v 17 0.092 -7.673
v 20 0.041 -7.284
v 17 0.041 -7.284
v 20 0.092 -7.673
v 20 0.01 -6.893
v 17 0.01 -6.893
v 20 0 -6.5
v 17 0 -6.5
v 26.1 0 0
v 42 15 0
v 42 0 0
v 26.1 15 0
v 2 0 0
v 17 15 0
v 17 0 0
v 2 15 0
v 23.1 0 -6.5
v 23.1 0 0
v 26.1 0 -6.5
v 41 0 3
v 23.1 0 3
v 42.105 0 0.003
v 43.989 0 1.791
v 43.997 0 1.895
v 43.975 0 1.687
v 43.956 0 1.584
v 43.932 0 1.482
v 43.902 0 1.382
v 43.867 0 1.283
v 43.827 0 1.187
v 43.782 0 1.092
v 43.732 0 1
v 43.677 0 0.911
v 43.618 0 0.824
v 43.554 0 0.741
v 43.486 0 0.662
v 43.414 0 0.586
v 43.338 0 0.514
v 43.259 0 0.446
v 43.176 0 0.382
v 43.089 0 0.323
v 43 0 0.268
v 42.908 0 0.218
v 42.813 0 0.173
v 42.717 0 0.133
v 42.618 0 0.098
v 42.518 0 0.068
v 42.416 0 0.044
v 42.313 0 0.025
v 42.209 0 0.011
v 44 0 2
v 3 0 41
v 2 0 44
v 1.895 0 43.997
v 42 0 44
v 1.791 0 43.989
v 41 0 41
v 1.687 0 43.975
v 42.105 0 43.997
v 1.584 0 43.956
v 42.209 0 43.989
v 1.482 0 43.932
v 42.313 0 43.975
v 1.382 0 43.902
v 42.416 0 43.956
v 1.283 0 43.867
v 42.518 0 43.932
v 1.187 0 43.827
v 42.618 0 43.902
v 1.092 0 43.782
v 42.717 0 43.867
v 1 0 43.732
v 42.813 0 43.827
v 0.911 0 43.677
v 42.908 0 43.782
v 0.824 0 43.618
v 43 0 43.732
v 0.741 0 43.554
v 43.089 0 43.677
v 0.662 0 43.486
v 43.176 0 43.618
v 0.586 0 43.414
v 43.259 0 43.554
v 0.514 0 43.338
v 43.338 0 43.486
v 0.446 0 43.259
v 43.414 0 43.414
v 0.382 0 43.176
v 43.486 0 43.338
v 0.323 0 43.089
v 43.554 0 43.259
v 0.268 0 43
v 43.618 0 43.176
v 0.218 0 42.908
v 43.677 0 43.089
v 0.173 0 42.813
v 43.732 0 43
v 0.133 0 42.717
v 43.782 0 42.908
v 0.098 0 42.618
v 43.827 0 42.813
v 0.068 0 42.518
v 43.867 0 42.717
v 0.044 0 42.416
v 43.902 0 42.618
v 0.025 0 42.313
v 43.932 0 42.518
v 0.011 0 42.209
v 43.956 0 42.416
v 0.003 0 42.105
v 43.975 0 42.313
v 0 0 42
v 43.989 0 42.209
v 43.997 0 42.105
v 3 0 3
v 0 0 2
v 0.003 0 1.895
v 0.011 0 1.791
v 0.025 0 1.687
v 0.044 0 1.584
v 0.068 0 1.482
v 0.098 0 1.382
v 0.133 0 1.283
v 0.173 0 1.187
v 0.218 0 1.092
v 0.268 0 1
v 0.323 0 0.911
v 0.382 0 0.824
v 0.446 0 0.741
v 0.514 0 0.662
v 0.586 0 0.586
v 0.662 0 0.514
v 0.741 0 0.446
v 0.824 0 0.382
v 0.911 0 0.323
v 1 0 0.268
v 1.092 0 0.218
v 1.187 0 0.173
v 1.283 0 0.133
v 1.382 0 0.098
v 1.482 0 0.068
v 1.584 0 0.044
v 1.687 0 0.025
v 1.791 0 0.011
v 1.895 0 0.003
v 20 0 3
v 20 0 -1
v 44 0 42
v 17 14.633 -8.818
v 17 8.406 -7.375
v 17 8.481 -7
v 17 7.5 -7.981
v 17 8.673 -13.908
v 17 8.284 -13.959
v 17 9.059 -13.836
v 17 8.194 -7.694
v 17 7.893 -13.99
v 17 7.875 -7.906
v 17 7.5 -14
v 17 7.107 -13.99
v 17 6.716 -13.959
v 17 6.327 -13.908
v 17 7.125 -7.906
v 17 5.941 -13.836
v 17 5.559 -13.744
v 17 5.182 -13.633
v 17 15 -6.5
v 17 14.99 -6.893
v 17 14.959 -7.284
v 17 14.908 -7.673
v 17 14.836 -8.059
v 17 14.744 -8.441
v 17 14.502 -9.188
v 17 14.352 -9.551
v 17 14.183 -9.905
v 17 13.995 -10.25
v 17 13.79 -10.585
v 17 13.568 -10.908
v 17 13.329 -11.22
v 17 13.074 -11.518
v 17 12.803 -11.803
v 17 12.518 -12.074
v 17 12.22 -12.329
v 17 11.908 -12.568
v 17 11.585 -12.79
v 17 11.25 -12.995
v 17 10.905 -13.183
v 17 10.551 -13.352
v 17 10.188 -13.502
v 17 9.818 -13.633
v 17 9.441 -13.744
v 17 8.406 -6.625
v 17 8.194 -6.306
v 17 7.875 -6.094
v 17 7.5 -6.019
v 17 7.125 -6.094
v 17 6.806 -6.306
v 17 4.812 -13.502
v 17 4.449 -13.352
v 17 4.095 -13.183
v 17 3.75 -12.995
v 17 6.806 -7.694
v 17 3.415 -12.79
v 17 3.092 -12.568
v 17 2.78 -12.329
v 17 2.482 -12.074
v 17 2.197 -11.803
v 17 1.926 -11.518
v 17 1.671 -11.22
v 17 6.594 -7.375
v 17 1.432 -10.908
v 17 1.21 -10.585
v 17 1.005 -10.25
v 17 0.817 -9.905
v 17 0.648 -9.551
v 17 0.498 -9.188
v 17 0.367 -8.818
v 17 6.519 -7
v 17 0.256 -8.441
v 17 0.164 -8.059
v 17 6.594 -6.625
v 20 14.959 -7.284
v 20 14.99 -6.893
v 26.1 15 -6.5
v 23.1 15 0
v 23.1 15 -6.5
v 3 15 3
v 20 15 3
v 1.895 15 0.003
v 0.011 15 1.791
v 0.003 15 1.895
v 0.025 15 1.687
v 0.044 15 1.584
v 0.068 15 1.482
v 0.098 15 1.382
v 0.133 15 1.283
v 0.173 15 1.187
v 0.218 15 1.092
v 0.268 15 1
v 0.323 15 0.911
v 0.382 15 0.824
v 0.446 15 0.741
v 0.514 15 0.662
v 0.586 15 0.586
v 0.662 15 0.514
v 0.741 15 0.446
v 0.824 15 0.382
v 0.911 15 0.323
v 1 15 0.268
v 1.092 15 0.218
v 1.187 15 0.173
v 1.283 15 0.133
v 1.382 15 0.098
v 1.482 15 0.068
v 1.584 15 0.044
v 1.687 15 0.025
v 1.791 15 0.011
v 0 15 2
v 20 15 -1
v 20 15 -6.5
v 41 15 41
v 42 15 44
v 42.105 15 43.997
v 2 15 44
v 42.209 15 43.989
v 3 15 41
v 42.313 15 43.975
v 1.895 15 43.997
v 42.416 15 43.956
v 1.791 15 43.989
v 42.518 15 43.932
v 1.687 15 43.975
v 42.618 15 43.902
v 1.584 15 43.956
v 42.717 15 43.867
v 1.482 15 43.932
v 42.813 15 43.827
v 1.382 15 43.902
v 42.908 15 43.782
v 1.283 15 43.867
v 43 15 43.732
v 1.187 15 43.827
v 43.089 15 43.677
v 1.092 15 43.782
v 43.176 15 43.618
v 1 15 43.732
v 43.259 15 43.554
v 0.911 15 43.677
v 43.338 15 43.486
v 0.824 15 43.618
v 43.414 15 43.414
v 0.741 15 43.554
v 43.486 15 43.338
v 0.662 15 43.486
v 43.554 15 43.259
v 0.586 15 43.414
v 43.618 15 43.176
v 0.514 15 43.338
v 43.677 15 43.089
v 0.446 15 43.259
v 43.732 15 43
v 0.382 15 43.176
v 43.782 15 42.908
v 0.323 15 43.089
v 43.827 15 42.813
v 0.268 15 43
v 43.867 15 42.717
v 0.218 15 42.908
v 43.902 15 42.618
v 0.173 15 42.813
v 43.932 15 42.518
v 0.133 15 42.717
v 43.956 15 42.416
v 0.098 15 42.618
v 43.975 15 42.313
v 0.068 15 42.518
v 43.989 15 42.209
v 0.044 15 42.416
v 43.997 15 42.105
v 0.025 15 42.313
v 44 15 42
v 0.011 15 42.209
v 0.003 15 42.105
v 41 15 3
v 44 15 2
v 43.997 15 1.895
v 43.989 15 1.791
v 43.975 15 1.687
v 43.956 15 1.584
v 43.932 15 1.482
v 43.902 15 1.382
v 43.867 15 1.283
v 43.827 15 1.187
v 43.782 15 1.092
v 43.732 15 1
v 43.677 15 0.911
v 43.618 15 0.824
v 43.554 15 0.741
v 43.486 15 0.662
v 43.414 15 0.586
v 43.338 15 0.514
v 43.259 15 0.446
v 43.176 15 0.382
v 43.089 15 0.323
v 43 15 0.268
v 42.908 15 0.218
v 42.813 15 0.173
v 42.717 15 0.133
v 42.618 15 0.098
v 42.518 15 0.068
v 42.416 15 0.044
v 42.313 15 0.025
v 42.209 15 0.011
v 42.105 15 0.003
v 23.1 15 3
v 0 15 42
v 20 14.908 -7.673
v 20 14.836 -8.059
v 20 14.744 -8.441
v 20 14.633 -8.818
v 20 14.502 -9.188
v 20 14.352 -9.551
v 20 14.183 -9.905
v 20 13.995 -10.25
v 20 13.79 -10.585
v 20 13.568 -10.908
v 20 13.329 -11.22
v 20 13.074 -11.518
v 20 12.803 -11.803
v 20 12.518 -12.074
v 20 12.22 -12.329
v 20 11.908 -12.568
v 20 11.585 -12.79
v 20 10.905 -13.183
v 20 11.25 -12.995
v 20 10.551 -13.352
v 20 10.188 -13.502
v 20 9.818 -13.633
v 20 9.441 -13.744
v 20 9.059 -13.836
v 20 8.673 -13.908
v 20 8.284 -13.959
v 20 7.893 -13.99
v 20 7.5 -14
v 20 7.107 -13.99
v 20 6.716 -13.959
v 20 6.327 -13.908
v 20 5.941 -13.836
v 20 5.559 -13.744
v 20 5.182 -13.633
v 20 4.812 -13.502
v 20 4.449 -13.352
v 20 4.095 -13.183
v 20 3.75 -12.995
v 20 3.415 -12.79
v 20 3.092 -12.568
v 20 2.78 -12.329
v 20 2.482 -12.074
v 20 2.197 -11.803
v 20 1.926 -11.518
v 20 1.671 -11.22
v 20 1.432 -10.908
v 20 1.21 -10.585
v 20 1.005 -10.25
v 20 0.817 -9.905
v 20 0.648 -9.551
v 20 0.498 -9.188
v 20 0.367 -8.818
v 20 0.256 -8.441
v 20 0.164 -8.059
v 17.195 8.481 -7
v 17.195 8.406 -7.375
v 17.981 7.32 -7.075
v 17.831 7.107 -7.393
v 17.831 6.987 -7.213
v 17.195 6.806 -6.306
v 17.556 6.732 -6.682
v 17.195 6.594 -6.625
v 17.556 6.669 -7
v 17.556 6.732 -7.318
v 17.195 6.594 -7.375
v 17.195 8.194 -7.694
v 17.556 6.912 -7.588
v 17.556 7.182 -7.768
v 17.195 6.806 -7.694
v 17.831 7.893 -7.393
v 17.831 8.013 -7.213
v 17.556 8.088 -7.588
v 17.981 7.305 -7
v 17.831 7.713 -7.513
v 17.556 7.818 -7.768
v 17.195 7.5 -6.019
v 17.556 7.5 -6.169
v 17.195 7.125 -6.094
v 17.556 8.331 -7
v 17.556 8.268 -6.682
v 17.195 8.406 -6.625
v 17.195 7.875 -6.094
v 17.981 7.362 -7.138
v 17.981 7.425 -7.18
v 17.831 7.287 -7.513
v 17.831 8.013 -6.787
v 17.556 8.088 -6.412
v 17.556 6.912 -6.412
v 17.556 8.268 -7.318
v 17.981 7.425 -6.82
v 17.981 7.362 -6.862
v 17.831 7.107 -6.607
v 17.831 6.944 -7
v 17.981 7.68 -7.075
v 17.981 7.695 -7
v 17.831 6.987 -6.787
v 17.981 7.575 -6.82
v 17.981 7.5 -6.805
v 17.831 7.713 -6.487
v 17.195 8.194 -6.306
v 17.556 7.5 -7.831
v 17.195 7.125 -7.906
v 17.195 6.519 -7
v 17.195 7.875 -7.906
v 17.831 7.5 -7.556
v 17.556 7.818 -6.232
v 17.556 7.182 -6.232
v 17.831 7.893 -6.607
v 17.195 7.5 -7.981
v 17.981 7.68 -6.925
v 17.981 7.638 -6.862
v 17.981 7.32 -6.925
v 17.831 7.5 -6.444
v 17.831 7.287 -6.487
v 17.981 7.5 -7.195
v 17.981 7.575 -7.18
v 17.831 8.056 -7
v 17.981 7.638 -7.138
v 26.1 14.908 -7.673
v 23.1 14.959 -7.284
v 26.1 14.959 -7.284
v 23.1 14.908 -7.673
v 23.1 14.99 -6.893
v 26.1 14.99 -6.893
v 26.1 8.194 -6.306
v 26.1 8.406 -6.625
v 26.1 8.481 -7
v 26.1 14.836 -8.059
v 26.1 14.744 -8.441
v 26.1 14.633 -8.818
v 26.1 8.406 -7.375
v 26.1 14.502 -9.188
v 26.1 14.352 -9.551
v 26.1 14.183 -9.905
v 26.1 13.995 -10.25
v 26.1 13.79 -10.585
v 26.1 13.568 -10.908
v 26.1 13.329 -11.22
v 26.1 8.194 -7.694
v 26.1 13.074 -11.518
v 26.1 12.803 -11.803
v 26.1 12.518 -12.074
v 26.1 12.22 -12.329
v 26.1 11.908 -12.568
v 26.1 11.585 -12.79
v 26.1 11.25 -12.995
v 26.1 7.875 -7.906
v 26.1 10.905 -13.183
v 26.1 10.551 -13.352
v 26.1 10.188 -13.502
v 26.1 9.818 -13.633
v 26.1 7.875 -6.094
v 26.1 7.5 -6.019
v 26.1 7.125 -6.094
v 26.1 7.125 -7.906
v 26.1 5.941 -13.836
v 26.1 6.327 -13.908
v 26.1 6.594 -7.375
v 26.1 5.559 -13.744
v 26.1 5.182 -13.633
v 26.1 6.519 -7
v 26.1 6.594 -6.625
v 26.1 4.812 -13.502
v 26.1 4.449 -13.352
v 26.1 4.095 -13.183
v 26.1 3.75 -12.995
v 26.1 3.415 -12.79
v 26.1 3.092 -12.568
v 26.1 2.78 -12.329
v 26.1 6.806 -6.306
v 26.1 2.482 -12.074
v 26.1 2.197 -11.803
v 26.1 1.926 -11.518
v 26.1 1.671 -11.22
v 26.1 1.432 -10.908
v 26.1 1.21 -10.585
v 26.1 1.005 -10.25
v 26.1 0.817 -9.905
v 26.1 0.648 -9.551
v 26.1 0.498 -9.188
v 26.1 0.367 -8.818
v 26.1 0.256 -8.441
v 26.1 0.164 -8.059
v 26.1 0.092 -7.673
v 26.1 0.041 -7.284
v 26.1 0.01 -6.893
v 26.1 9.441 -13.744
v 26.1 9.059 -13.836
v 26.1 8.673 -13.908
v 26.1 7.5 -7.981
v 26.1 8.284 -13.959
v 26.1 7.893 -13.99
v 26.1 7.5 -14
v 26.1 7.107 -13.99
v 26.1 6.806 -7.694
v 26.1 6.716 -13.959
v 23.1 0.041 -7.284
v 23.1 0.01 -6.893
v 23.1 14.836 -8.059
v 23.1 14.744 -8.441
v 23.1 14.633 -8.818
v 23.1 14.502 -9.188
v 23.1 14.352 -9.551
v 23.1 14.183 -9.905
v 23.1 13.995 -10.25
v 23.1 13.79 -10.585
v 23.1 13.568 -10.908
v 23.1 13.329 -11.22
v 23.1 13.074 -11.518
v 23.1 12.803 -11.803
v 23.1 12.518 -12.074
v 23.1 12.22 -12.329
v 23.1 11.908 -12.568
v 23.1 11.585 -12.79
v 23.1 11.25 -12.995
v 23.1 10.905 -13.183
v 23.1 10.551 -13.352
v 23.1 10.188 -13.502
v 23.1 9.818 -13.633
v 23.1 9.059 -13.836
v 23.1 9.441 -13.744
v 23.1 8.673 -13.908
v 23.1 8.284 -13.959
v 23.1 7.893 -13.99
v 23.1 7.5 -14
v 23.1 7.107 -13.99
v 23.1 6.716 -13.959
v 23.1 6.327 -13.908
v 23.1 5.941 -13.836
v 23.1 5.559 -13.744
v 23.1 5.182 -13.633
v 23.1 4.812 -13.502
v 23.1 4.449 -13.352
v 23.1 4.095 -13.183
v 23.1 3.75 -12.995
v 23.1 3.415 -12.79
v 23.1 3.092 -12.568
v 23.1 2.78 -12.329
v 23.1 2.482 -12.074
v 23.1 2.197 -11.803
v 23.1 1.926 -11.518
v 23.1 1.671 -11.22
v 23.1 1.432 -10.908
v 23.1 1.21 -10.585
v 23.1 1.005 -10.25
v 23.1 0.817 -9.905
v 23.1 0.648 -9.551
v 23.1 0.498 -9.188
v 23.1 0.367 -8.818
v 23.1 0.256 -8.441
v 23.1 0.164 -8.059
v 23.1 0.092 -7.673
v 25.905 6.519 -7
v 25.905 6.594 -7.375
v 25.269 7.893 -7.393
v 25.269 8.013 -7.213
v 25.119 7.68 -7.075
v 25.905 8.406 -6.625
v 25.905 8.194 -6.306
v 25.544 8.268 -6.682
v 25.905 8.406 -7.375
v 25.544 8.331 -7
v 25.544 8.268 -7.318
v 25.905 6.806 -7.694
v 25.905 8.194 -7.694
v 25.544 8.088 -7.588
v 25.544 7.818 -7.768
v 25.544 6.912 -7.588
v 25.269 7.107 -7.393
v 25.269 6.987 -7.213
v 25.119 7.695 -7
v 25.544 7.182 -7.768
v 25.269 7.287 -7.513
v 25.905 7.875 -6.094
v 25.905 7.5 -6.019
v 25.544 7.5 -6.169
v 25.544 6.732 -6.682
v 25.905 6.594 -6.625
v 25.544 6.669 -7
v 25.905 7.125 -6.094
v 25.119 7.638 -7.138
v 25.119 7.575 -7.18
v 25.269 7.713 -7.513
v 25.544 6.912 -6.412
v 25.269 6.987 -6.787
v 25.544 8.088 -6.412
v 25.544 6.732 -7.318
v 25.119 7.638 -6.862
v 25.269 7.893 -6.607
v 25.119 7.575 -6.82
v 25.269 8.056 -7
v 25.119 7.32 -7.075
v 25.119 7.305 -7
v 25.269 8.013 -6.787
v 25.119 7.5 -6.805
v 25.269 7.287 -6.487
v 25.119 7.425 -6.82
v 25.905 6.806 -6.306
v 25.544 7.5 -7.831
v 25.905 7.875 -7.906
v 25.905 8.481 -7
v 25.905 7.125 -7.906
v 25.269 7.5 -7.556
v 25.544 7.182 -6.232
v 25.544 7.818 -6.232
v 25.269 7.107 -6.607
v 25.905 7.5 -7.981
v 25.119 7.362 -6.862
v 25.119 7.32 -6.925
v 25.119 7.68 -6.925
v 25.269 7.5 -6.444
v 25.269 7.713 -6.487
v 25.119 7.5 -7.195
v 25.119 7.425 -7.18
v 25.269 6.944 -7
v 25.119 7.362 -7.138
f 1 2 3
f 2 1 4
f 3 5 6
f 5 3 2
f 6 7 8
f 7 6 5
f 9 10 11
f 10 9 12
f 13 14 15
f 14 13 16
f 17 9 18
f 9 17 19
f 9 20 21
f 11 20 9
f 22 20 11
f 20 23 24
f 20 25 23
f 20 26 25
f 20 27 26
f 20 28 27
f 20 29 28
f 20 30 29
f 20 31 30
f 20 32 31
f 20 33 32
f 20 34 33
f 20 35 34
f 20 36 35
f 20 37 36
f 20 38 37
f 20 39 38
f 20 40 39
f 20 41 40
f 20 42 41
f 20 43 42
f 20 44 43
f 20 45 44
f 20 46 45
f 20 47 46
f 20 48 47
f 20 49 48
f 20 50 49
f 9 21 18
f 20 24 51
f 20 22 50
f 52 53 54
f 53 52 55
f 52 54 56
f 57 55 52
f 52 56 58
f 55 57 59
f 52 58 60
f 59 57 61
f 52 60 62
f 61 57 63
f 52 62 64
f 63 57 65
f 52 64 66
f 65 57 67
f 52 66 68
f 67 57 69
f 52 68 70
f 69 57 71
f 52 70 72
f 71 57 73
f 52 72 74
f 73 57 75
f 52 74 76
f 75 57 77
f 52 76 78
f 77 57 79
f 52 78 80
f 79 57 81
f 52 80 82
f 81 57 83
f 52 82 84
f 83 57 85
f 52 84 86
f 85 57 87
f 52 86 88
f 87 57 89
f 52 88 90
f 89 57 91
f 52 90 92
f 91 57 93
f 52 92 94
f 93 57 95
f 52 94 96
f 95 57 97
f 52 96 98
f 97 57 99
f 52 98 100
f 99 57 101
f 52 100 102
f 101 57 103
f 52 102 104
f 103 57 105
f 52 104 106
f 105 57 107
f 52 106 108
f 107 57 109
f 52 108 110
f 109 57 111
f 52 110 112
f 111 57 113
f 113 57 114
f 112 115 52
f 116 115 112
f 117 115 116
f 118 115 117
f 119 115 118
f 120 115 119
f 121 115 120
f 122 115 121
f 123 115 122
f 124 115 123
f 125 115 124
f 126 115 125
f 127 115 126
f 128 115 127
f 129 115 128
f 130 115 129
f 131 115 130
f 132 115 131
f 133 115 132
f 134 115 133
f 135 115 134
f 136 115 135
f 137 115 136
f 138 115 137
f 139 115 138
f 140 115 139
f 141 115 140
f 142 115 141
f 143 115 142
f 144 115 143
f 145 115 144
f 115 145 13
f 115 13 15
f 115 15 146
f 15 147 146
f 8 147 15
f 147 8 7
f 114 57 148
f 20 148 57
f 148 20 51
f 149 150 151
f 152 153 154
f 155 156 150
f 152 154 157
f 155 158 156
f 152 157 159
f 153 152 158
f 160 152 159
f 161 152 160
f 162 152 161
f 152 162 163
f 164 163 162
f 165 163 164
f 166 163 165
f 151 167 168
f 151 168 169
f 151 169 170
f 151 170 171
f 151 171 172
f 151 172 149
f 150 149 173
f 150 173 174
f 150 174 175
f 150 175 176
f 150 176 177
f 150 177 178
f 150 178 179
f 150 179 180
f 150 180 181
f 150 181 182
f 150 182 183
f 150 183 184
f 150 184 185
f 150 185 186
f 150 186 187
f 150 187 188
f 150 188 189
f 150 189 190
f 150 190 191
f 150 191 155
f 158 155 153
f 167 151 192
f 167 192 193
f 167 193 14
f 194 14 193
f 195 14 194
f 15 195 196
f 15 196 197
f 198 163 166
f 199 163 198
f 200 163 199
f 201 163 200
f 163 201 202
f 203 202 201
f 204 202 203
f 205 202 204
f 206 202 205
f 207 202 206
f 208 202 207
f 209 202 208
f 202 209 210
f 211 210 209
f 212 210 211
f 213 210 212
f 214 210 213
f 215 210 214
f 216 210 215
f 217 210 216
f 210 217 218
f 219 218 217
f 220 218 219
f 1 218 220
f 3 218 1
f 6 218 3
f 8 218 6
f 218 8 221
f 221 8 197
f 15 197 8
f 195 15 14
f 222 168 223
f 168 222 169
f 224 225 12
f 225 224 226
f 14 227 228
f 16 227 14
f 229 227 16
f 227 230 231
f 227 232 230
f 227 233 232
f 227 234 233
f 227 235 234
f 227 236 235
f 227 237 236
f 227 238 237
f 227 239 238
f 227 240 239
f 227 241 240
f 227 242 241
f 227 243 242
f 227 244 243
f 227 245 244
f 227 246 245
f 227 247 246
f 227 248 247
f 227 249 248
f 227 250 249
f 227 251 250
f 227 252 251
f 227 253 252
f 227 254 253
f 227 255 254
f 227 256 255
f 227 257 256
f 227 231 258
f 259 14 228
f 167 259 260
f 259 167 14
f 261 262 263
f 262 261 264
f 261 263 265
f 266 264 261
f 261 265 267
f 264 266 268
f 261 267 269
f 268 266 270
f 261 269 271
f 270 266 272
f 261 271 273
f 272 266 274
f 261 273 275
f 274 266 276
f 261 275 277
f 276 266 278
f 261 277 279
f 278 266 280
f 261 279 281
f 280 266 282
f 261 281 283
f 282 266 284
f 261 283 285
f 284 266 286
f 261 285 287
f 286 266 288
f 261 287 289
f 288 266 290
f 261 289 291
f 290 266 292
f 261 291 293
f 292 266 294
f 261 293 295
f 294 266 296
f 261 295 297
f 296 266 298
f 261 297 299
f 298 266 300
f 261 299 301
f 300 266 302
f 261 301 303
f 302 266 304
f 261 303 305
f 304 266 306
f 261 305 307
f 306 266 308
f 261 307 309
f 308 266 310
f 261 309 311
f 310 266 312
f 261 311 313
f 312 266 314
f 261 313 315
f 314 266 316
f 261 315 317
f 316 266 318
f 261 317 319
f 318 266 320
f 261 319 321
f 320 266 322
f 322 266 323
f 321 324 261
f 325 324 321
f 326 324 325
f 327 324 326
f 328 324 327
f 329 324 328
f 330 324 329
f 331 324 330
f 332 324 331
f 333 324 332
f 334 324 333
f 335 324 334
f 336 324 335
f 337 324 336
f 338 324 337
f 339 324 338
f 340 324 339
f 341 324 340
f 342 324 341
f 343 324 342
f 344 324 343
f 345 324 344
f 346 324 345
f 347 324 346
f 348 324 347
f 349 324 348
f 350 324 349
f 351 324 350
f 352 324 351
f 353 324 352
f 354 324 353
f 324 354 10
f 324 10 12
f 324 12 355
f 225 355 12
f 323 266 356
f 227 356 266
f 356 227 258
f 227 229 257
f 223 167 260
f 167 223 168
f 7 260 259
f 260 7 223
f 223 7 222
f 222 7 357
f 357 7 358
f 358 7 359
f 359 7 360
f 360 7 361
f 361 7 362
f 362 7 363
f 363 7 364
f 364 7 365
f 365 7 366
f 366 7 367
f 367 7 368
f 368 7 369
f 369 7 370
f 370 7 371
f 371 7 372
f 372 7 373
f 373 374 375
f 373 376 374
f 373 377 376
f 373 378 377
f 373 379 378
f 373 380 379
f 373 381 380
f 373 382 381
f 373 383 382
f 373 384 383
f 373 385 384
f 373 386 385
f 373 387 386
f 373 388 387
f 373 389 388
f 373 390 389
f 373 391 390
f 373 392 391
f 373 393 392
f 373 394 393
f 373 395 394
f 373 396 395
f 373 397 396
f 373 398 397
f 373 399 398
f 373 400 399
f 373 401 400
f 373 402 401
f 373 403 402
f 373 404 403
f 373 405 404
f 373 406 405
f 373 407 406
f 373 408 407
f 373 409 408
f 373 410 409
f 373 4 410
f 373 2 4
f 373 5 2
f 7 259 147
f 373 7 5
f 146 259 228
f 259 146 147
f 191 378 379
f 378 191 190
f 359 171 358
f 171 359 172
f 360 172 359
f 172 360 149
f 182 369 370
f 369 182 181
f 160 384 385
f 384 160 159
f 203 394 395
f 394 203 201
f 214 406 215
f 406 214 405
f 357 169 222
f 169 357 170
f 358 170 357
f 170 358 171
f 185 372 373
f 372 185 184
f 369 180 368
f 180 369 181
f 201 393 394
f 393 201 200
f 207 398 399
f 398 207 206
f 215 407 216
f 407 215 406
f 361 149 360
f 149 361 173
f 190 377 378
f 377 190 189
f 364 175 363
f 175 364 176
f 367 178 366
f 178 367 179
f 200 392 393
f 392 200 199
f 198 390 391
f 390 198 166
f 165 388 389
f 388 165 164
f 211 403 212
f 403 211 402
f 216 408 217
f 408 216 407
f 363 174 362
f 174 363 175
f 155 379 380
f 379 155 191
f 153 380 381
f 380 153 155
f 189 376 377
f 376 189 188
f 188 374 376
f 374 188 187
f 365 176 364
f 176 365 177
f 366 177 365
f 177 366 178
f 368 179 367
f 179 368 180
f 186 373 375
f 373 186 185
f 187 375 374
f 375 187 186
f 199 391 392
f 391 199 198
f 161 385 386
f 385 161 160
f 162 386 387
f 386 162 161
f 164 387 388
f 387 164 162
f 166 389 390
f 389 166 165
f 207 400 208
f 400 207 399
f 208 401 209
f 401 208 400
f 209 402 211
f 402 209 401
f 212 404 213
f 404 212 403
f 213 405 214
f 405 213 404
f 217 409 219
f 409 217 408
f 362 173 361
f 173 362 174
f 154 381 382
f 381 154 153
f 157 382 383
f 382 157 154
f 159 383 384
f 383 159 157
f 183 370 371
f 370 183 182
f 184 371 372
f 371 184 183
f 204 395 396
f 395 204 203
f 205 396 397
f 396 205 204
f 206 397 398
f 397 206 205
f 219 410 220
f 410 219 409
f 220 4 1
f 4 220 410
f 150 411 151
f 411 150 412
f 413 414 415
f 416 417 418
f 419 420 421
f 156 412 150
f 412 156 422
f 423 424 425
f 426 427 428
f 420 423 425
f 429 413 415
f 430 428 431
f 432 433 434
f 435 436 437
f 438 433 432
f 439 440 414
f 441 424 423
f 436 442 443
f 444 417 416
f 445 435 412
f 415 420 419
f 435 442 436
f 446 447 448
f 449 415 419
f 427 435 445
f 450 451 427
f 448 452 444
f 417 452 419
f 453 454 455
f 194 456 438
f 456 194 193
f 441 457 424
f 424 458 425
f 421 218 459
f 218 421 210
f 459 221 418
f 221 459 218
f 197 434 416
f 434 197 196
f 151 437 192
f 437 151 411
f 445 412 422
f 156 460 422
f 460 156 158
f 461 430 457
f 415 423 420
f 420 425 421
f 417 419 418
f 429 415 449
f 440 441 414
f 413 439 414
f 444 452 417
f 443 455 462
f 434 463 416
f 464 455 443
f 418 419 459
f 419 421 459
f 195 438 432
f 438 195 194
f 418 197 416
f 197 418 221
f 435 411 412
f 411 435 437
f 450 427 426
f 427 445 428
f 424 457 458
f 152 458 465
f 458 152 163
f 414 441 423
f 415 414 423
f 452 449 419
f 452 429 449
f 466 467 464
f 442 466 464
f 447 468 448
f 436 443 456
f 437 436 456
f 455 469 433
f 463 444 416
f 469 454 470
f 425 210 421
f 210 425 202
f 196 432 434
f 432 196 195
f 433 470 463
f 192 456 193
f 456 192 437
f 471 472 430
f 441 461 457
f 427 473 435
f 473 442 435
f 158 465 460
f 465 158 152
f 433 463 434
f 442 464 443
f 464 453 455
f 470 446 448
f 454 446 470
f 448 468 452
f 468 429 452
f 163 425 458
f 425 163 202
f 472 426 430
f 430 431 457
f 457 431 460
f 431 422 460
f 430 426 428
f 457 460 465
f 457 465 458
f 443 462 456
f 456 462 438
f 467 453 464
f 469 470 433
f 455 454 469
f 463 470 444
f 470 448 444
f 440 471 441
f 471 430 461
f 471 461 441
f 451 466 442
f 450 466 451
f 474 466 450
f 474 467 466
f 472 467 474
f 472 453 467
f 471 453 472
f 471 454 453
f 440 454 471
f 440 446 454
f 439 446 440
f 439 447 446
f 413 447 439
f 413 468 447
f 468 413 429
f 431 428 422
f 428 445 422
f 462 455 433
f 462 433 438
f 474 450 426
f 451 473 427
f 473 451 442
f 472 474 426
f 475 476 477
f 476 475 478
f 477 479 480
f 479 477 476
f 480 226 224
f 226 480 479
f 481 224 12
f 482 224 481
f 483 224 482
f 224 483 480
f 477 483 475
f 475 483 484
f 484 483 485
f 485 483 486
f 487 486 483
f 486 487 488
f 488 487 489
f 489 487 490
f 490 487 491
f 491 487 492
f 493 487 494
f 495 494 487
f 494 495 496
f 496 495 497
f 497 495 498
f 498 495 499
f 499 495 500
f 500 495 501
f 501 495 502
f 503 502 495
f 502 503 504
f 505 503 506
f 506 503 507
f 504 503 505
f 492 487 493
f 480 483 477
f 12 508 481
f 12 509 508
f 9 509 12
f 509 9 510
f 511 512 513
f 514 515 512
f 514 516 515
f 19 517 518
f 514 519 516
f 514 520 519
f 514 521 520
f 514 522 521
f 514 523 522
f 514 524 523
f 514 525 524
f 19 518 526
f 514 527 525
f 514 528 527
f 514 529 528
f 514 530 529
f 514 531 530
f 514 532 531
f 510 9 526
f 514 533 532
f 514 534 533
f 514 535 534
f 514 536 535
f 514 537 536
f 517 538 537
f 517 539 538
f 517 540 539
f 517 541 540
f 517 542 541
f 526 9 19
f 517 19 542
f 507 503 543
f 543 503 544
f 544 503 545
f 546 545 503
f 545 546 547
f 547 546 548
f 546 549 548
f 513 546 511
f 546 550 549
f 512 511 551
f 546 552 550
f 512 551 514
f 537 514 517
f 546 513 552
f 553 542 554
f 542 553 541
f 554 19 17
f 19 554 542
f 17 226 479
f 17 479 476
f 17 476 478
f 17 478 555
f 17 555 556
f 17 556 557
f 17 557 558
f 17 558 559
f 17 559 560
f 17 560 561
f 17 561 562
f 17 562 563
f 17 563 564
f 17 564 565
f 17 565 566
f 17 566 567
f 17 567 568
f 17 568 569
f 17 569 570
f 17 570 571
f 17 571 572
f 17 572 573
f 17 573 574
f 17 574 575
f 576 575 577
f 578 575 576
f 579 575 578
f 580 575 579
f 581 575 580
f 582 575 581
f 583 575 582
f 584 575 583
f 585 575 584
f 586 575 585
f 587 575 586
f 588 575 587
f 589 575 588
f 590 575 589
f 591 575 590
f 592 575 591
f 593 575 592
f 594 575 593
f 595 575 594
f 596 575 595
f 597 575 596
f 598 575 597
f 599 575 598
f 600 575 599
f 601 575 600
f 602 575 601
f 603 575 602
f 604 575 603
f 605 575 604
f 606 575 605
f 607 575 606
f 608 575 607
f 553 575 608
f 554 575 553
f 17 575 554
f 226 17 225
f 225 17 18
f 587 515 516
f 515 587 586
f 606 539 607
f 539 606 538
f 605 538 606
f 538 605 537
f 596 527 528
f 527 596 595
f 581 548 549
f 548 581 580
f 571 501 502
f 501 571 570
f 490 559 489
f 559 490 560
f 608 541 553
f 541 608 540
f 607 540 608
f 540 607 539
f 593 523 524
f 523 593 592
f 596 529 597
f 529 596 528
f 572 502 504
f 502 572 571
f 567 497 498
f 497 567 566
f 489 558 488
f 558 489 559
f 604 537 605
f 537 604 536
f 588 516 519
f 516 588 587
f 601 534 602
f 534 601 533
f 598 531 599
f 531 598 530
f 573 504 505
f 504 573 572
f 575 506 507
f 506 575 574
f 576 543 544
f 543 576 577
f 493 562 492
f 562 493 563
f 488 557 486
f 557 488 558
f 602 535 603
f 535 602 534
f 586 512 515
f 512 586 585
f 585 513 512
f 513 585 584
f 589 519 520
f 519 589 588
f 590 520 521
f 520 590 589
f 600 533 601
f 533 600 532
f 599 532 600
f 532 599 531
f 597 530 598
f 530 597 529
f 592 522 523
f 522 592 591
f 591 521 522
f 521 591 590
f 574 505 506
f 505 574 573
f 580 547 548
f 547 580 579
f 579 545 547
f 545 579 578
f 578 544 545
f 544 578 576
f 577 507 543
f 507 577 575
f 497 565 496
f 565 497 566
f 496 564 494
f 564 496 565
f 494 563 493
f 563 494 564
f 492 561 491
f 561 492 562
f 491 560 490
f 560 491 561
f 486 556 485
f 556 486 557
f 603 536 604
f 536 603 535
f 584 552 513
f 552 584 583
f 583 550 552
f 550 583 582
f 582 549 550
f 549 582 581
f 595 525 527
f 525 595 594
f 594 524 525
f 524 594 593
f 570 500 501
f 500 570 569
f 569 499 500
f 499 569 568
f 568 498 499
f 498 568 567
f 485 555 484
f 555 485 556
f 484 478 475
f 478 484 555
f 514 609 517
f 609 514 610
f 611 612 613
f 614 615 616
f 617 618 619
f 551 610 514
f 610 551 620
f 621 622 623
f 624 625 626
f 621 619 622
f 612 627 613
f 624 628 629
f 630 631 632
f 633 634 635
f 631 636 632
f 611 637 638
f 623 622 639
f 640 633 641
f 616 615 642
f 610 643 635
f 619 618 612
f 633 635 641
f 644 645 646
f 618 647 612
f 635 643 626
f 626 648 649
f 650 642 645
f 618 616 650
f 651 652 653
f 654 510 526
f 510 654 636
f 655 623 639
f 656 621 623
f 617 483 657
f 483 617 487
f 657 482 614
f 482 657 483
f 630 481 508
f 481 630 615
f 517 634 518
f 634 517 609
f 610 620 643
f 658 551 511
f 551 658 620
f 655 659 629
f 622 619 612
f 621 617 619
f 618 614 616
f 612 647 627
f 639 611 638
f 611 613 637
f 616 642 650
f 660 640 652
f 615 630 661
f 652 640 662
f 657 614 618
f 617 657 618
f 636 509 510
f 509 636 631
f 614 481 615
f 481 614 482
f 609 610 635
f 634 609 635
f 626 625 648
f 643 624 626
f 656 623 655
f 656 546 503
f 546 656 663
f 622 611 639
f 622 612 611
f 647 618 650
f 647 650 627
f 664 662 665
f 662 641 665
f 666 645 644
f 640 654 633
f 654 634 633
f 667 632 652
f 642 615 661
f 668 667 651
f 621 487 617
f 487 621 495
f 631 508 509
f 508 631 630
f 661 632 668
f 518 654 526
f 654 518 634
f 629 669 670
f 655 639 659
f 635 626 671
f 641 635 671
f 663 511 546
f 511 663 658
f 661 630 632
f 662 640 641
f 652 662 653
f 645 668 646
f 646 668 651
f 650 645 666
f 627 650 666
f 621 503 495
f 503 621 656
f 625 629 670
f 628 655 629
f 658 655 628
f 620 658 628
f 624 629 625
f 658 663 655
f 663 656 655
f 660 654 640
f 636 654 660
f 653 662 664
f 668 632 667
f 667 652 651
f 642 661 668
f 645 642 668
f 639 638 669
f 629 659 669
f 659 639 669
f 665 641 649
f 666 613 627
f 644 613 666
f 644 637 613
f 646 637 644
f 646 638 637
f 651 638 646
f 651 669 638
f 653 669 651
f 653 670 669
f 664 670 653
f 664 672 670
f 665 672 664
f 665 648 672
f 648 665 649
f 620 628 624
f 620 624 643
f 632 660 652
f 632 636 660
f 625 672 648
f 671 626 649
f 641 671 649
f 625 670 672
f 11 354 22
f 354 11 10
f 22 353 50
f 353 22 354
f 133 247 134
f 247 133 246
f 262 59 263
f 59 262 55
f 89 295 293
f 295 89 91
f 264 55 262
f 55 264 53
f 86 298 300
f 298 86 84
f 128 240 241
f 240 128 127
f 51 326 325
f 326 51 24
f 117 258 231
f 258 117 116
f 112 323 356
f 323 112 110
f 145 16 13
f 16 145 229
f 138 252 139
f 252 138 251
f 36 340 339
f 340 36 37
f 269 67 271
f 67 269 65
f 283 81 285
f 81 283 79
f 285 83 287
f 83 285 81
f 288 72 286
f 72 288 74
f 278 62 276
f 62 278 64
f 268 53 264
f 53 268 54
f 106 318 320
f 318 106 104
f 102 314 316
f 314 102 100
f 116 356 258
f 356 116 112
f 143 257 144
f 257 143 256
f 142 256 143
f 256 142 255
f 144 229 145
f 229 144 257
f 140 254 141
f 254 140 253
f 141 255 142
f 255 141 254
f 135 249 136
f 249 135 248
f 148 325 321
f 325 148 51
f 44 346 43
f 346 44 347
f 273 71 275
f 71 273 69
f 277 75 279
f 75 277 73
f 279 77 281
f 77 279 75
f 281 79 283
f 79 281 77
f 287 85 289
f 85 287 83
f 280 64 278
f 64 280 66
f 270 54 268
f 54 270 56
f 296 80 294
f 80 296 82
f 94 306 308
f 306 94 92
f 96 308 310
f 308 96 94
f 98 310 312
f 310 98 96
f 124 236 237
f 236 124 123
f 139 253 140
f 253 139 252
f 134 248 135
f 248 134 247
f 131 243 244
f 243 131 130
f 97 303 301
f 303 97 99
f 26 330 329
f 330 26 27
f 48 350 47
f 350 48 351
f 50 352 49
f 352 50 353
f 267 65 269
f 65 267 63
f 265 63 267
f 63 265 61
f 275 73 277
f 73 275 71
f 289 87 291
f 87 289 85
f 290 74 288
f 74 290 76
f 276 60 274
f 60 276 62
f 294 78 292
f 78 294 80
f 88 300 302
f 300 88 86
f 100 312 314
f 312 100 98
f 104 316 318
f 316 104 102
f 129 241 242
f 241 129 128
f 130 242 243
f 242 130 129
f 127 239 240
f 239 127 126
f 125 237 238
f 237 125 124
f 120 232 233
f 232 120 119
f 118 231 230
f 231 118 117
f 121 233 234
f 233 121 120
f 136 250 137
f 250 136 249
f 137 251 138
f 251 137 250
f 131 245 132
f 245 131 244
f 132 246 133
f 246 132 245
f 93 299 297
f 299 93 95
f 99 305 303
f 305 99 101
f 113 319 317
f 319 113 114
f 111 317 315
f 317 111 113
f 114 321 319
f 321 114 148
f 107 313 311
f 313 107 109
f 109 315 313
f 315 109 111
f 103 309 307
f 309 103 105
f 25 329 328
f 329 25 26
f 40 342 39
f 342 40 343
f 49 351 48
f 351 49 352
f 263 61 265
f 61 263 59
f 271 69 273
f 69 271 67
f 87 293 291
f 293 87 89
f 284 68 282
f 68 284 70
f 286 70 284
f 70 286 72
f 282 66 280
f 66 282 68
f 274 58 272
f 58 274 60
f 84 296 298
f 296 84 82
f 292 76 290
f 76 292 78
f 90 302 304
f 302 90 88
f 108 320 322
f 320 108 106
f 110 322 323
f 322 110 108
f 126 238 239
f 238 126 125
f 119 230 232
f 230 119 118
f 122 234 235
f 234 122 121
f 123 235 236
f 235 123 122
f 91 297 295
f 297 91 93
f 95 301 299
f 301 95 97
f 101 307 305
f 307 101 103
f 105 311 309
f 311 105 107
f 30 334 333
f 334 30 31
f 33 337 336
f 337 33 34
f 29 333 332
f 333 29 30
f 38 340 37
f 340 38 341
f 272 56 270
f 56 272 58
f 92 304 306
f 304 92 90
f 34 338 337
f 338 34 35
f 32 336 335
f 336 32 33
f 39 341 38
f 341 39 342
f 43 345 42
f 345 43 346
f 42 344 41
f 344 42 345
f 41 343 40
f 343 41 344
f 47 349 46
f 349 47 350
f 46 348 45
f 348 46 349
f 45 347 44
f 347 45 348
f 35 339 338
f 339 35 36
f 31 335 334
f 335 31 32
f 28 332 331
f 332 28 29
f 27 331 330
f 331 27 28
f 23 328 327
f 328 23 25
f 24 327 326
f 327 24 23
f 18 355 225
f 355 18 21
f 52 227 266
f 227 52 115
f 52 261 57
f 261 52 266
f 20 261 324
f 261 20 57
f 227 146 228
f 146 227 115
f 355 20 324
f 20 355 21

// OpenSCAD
include <../.libraries/Round-Anything/polyround.scad>

$fa = 2;
$fs = 0.4;

radiiPoints = [
        [0, 0, 2],
        [0, 44, 2],
        [44, 44, 2],
        [44, 0, 2]
    ];

difference()
{
    union()
    {
        translate([0, 15, 0])
        rotate([90, 0, 0])
        linear_extrude(15)
        polygon(polyRound(radiiPoints, 30));
        
        finger1_x = 17;
        finger2_x = finger1_x + 9.1;
        
        
        translate([finger1_x, 15, 0])
        rotate([-90, 0, -90])
        gopro_finger();
        
        translate([finger2_x, 0, 0])
        rotate([-90, 0, 90])
        gopro_finger();
    }
    
    translate([20, 0, -1])
    cube([3.1, 15, 5]);
    
    
    translate([3, -1, 3])
    cube([38, 17, 38]);
}



module gopro_finger()
{
    radiiPoints = [
        [0, 0, 0],
        [0, 14, 10],
        [15, 14, 10],
        [15, 0, 0]
    ];
    
    difference()
    {
        linear_extrude(3)
        polygon(polyRound(radiiPoints, 30));
        
        translate([7.5, 7, 0])
        sphere(d = 2);
    }  
}
